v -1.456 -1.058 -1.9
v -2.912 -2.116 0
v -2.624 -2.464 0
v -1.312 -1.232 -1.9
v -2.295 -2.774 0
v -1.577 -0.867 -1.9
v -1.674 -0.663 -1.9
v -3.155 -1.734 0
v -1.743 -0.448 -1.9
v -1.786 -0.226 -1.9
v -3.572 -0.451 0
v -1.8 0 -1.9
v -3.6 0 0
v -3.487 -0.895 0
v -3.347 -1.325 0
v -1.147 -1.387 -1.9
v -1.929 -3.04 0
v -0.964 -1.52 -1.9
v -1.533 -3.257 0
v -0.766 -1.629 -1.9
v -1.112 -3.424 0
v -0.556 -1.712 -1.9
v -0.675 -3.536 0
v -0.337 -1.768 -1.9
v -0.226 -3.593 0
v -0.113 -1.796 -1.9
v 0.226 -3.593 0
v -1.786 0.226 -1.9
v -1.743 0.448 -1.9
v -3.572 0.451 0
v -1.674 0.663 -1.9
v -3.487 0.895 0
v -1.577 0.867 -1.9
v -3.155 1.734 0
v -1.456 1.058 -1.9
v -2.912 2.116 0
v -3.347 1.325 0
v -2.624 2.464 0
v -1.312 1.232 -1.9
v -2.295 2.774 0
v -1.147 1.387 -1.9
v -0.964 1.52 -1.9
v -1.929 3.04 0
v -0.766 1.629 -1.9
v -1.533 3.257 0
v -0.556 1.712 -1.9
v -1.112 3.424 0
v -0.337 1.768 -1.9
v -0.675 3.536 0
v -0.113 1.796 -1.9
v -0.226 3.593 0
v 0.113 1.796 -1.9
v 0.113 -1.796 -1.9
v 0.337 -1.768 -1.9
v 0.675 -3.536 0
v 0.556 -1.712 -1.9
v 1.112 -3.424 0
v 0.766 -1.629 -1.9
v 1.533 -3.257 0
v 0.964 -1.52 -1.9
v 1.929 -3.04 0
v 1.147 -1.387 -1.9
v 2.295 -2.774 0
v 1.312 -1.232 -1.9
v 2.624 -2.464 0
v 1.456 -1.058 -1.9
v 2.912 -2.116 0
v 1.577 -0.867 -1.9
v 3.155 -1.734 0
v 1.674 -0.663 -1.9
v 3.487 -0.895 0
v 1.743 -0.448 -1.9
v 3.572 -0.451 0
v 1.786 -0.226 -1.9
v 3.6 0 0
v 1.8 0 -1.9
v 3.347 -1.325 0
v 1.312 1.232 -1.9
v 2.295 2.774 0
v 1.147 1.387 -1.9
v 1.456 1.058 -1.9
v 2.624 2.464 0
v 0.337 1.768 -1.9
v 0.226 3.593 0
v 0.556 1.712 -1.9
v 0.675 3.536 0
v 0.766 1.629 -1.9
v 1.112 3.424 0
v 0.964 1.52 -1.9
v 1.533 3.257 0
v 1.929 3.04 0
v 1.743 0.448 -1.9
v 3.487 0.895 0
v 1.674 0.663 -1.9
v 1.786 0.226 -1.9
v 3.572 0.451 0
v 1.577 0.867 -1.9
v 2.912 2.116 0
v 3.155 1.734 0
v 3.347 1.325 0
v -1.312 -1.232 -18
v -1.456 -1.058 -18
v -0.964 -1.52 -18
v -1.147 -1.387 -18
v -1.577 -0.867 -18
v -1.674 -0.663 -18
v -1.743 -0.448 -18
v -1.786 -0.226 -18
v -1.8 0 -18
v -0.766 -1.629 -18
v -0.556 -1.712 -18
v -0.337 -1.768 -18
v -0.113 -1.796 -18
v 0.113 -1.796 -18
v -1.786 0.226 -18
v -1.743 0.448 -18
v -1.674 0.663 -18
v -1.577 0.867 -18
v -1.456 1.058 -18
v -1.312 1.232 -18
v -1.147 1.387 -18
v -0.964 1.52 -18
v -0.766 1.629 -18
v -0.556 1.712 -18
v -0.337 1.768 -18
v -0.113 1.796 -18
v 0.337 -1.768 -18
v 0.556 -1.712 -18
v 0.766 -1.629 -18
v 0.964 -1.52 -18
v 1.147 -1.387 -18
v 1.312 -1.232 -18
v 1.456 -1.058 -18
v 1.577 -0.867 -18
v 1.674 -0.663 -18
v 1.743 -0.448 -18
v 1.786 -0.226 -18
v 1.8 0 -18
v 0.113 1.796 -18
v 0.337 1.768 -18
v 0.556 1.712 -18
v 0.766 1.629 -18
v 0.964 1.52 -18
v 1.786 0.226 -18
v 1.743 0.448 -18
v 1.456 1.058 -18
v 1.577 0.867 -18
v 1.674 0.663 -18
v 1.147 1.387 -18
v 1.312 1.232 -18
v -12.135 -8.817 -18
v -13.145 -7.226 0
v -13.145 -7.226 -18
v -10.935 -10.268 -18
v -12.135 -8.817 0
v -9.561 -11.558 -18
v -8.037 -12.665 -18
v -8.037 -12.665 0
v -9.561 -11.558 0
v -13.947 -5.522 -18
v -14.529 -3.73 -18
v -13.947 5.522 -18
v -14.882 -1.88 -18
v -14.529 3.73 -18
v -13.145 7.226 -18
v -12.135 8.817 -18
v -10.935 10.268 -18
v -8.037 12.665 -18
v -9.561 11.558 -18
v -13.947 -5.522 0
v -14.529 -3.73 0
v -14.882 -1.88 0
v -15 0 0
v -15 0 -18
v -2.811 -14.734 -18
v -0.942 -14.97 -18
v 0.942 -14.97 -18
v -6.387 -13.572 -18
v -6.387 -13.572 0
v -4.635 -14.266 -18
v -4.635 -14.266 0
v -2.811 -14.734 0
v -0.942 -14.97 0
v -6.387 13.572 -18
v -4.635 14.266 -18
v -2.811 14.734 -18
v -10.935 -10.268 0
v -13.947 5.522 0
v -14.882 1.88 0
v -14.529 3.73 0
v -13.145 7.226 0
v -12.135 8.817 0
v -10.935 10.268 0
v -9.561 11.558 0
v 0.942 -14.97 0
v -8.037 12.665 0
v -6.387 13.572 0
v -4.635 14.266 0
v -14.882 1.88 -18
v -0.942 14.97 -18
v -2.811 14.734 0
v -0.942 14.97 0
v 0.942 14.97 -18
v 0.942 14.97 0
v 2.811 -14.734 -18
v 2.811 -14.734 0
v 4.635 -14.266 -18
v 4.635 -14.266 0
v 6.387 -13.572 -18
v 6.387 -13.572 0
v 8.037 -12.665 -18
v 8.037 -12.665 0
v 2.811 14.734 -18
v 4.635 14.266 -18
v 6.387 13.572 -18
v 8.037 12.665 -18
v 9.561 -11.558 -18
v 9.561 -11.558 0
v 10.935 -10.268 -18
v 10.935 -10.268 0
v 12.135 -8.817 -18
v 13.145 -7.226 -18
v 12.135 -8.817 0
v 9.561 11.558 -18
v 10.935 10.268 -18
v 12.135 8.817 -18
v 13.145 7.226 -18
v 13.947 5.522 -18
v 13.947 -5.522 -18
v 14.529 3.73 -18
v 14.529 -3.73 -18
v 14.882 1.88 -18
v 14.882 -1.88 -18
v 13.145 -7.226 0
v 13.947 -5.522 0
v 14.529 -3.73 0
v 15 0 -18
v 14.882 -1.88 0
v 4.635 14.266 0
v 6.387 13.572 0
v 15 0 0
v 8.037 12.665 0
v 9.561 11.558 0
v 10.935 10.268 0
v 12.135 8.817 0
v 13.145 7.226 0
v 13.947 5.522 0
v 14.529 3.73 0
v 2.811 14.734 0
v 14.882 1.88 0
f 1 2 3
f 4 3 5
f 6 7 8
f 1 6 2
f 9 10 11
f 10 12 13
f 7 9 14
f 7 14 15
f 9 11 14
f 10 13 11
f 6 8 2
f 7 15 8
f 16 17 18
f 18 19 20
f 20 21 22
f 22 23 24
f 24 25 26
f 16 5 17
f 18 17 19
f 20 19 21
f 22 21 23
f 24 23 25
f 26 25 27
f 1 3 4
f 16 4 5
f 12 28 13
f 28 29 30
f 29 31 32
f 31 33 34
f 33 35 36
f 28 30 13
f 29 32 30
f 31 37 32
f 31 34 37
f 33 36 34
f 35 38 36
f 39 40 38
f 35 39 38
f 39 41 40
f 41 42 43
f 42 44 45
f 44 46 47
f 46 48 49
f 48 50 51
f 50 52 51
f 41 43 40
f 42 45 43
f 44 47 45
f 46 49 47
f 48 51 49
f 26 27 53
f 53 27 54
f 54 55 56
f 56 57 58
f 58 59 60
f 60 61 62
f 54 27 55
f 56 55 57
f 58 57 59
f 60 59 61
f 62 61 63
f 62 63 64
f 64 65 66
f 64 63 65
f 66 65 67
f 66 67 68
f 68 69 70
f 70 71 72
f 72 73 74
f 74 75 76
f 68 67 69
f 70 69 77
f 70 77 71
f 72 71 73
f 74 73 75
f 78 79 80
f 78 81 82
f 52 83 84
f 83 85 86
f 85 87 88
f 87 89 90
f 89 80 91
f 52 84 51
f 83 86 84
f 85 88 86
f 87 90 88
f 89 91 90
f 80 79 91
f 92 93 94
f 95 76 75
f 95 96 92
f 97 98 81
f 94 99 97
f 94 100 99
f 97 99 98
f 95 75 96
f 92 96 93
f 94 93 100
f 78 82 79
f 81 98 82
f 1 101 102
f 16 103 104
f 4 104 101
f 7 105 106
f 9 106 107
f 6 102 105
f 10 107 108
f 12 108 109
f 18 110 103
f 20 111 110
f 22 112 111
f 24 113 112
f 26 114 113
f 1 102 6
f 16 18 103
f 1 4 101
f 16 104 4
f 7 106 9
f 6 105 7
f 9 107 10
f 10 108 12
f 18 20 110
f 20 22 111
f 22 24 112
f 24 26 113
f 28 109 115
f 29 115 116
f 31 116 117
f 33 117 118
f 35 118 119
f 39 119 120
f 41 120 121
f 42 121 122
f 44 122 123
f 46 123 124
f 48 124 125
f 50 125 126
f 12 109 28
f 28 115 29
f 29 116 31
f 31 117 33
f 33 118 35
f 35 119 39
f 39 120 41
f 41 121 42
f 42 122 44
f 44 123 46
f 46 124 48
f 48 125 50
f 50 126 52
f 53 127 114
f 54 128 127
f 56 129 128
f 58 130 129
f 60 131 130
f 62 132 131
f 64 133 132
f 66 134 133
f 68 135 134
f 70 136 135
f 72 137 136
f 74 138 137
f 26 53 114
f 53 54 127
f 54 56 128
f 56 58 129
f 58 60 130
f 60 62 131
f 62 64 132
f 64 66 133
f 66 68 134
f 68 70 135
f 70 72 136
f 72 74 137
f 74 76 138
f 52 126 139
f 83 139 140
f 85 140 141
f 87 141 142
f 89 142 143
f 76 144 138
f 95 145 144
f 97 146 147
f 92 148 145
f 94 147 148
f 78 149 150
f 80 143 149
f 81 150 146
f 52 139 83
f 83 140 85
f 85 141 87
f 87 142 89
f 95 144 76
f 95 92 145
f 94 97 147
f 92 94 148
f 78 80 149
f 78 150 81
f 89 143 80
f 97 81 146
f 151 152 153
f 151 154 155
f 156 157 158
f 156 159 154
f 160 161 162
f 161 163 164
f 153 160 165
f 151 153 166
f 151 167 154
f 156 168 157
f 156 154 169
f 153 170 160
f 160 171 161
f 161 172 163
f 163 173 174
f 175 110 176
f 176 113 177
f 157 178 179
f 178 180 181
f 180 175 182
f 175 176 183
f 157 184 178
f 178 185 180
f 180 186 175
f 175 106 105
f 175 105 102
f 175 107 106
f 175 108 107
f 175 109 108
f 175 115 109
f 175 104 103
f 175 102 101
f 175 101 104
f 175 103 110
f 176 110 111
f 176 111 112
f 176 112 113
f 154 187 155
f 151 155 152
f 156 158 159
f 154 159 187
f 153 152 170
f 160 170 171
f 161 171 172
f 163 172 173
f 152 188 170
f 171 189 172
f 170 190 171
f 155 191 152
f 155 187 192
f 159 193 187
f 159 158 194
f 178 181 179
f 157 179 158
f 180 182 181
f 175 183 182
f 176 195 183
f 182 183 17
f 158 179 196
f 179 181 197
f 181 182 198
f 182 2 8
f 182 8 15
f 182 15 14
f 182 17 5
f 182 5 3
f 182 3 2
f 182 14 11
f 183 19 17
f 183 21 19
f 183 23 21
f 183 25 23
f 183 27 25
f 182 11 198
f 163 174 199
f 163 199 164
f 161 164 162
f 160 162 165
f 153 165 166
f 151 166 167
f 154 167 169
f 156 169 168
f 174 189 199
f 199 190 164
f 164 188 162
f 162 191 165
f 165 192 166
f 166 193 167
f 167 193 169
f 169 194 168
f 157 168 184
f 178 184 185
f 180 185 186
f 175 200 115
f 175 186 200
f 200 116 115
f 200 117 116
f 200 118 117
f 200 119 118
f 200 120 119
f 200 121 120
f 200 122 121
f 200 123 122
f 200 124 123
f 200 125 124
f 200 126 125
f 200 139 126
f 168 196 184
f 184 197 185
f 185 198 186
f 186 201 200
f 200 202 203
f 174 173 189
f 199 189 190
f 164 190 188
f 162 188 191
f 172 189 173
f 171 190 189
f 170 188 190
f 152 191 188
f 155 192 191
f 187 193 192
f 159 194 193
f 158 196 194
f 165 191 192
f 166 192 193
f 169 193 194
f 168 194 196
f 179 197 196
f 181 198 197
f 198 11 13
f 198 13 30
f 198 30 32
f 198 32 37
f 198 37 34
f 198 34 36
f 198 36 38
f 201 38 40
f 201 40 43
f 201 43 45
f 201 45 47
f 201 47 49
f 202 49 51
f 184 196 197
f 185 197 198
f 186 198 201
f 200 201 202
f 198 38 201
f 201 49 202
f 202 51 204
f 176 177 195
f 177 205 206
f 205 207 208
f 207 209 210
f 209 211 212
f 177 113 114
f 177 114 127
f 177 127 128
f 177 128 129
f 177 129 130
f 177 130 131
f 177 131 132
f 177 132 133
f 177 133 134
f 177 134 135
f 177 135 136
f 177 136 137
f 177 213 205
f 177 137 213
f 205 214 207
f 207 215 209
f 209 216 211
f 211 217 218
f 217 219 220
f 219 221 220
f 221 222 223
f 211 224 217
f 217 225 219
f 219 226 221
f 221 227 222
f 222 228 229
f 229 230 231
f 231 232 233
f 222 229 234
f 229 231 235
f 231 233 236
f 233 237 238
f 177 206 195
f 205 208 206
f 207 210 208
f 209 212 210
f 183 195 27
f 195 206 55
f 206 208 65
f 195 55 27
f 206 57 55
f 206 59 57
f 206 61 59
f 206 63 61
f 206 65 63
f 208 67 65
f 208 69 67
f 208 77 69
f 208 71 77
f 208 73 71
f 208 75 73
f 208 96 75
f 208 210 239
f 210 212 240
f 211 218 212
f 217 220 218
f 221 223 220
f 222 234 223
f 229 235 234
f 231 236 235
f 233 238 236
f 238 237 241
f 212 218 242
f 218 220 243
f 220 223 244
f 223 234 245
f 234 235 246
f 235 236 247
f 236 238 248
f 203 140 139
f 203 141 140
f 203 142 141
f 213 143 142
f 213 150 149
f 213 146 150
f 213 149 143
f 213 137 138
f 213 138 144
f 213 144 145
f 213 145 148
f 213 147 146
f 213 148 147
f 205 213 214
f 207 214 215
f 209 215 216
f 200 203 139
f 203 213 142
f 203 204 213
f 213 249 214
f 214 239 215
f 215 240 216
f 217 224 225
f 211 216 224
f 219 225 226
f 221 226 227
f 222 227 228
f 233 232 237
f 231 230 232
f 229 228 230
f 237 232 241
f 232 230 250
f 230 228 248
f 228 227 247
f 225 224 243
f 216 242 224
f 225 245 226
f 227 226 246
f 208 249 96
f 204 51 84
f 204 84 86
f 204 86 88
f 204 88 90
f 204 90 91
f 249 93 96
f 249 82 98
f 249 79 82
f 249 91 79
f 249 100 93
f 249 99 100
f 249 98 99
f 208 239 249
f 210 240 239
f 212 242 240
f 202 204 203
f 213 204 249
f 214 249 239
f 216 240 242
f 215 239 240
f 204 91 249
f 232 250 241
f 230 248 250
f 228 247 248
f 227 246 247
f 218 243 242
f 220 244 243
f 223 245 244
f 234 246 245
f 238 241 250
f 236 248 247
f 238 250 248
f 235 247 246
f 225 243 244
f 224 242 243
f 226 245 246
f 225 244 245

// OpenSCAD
$fn = 50;

difference() {
	union() {
		translate(v = [0, 0, -18.0]) {
			cylinder(h = 18, r = 15.0);
		}
	}
	union() {
		translate(v = [0, 0, 0]) {
			rotate(a = [0, 0, 0]) {
				difference() {
					union() {
						translate(v = [0, 0, -21.0]) {
							cylinder(h = 21, r = 1.5);
						}
						translate(v = [0, 0, -1.9]) {
							cylinder(h = 1.9, r1 = 1.8, r2 = 3.6);
						}
						translate(v = [0, 0, -21.0]) {
							cylinder(h = 21, r = 1.8);
						}
						translate(v = [0, 0, -21.0]) {
							cylinder(h = 21, r = 1.5);
						}
					}
					union();
				}
			}
		}
	}
}
